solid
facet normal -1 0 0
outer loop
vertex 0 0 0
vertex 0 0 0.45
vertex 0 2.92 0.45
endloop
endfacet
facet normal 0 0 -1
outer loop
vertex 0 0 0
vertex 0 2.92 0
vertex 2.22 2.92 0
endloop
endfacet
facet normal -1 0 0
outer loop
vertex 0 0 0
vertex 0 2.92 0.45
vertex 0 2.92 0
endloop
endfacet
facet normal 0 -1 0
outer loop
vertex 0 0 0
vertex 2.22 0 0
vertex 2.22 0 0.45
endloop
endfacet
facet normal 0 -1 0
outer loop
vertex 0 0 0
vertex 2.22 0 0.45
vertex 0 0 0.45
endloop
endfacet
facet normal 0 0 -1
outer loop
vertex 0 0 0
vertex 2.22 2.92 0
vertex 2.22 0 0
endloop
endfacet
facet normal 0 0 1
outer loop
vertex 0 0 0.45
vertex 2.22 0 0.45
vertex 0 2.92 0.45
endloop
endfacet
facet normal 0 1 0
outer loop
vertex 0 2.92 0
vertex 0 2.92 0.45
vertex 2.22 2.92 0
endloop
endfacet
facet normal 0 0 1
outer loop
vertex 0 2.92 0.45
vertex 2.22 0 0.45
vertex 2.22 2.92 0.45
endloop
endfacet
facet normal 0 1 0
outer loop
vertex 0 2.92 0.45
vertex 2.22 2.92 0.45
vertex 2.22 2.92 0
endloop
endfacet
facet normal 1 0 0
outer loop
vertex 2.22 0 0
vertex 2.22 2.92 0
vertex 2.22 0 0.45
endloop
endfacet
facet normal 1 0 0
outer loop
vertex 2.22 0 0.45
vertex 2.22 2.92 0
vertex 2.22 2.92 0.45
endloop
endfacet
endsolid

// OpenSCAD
/* Warning, this is a very basic generator with a lot of approximation 
input data : [WLCSP, HLB, 2.22x2.92x0.45mm, 48, , A, C04-06038A]
generated by com.zoubworld.electronics.cad.model3d.Basic
Date : Sun Feb 15 10:50:49 CET 2026
*/

//body
color("black")
translate([0,0,0])
cube([2.22,2.92,0.45], center=false);
